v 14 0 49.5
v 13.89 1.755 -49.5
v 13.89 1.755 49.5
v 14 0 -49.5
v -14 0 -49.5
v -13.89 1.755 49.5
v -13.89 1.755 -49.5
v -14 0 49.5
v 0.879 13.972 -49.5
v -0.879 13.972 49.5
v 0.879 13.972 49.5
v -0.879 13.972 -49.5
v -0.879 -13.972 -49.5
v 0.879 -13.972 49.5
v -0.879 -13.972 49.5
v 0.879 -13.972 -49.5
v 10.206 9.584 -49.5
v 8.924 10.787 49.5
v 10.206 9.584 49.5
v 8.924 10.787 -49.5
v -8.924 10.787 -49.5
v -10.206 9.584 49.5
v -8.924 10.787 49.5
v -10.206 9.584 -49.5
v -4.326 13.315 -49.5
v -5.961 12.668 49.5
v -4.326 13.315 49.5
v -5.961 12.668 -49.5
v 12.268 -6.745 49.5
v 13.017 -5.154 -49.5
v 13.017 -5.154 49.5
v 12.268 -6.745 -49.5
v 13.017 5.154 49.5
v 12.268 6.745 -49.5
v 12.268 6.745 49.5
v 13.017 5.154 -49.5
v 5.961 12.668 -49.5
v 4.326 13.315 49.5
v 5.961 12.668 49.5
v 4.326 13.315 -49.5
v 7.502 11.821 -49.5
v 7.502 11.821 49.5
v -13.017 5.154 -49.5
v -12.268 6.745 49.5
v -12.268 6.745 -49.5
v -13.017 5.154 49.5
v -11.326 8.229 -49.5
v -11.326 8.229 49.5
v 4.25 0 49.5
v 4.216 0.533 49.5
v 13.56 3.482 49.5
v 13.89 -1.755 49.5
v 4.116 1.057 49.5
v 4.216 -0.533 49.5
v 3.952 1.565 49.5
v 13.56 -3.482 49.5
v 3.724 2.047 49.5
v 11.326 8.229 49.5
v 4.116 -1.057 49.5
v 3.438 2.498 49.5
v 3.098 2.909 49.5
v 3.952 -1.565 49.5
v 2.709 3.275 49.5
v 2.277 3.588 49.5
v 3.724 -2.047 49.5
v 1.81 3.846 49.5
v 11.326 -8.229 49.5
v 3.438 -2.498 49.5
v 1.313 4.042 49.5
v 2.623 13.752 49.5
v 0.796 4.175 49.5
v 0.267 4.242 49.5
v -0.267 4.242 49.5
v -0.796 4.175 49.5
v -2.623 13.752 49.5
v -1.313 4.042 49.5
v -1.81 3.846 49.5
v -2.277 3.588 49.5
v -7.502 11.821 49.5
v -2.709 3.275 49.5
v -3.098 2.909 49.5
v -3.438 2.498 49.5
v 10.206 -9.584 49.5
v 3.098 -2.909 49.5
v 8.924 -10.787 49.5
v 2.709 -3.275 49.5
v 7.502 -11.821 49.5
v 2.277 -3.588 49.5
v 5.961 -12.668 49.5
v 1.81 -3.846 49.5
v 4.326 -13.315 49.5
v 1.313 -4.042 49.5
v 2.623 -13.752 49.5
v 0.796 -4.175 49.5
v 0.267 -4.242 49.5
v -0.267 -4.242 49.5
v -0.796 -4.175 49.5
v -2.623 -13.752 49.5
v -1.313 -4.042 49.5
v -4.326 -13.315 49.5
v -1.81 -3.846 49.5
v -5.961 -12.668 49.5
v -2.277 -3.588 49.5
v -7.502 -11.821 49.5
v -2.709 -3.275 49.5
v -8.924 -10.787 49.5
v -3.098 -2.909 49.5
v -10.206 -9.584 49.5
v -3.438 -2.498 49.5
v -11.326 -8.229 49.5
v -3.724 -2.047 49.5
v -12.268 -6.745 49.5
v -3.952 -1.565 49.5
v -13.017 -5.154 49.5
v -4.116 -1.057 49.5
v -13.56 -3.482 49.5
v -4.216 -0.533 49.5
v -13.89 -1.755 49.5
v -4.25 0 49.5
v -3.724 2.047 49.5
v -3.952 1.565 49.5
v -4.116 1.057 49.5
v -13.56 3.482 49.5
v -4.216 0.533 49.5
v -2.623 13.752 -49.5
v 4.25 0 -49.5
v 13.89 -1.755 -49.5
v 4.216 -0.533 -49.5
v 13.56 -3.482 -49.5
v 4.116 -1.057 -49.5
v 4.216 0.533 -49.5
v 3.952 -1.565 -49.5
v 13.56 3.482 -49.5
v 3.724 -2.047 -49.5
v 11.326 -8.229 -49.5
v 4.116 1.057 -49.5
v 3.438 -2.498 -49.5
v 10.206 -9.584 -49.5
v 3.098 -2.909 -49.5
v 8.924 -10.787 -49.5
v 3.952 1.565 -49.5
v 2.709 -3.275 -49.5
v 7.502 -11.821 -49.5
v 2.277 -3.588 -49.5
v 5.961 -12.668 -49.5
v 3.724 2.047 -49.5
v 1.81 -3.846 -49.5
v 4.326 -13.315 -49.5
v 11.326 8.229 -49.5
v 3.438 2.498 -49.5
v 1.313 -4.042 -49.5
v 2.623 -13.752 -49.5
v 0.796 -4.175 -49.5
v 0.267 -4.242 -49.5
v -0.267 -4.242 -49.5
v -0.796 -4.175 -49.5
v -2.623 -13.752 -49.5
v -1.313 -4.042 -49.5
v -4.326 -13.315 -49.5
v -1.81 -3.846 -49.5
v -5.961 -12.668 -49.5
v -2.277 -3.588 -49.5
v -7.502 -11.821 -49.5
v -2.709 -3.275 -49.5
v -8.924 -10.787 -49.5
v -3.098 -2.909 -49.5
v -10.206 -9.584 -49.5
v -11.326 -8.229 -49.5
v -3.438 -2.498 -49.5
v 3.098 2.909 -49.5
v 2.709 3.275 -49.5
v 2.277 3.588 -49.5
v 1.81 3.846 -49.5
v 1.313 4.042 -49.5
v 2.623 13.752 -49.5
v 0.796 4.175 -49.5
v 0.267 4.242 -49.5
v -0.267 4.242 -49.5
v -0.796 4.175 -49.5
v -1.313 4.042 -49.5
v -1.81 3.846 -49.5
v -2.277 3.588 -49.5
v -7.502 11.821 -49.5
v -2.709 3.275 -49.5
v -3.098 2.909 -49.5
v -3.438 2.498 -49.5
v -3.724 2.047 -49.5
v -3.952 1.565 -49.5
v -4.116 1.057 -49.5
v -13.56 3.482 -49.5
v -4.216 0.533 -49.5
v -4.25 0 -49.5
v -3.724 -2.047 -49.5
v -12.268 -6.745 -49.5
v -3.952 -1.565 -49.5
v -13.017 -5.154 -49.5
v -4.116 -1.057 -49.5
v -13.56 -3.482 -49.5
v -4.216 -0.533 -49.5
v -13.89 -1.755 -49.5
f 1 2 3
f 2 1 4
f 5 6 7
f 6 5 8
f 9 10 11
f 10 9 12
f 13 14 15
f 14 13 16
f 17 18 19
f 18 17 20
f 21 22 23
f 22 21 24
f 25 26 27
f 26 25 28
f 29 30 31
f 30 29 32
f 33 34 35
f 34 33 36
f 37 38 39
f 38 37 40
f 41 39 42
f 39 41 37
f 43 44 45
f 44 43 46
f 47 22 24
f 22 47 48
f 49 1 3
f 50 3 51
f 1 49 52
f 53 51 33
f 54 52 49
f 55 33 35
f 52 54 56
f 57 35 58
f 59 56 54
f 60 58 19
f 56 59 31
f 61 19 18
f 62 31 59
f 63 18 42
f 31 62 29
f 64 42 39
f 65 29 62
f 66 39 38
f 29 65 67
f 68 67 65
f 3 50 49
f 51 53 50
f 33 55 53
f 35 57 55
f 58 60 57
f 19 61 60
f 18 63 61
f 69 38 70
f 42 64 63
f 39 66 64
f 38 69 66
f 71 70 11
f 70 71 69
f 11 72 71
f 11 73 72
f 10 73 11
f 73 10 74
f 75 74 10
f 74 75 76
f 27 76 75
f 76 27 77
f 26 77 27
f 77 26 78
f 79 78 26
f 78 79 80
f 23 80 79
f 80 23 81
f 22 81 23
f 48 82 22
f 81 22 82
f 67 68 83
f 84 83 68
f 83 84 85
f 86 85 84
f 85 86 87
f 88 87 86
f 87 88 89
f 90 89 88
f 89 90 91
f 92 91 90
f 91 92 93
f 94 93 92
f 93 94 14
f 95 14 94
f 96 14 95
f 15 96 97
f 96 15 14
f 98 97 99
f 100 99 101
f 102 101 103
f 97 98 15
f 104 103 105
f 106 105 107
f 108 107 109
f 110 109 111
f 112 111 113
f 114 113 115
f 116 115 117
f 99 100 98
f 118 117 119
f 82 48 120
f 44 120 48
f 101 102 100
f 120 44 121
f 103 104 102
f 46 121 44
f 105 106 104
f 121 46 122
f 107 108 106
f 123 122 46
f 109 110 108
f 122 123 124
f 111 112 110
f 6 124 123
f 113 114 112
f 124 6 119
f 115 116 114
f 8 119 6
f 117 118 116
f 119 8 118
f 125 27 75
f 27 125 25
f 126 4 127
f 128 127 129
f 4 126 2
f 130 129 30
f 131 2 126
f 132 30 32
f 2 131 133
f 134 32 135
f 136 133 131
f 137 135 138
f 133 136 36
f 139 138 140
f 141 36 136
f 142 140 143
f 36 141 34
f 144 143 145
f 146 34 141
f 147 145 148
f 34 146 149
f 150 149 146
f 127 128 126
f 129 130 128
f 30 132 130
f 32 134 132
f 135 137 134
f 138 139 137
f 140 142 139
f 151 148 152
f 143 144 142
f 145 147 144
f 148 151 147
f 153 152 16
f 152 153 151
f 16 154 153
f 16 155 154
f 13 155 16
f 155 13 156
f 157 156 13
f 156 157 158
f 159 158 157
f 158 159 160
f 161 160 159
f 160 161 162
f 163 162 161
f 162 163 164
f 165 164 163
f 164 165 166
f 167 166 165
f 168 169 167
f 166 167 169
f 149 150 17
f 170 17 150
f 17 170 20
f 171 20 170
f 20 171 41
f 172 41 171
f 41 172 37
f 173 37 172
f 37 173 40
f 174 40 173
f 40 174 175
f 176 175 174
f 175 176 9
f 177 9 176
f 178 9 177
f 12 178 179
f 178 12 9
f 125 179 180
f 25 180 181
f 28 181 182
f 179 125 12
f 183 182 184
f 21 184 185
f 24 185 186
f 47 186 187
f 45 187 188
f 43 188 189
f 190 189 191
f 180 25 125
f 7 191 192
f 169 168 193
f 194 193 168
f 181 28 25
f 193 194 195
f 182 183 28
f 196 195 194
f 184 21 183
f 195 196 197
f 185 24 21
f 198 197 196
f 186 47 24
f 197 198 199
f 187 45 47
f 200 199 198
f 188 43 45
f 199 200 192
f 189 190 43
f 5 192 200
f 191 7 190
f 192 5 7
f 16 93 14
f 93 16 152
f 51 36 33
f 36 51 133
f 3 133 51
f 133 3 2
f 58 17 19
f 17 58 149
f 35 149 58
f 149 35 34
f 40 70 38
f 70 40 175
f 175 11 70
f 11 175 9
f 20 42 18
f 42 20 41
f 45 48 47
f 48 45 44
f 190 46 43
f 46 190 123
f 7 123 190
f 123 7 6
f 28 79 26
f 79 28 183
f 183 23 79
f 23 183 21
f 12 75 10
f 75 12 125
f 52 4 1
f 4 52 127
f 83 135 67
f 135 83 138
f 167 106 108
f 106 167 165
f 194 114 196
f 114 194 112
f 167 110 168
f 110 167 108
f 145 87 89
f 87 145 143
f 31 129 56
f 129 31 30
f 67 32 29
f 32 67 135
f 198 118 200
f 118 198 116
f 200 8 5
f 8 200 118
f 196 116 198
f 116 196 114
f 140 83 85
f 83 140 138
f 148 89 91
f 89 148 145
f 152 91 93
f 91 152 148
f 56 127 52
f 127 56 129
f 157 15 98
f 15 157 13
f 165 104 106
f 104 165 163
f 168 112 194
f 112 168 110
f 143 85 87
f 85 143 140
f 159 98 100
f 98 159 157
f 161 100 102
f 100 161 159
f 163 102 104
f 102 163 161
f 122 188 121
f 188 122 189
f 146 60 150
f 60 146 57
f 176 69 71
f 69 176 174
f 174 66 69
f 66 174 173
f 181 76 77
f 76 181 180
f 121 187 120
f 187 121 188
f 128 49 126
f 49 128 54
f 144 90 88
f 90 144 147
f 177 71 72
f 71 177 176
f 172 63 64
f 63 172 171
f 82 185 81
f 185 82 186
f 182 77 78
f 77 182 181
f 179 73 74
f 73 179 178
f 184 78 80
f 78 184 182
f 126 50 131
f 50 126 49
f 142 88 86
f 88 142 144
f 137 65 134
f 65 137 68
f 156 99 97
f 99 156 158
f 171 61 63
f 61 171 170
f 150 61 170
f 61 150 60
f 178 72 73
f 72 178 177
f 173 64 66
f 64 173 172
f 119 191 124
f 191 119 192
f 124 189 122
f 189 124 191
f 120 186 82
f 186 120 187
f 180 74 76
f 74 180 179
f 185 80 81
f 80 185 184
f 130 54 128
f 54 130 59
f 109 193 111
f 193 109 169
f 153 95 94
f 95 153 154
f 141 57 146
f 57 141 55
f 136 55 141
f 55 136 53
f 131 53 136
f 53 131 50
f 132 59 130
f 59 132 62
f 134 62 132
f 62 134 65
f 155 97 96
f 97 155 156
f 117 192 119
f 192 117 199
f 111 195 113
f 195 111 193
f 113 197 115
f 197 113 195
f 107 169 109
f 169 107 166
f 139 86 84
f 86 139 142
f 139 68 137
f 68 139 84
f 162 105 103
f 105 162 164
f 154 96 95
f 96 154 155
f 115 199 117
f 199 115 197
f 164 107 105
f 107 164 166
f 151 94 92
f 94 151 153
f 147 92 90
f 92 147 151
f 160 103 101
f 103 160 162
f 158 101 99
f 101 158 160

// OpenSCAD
$fn = 50;


difference() {
	union() {
		translate(v = [0, 0, -49.5000000000]) {
			cylinder(h = 99, r = 14.0000000000);
		}
	}
	union() {
		translate(v = [0, 0, -100.0000000000]) {
			cylinder(h = 200, r = 4.2500000000);
		}
	}
}
